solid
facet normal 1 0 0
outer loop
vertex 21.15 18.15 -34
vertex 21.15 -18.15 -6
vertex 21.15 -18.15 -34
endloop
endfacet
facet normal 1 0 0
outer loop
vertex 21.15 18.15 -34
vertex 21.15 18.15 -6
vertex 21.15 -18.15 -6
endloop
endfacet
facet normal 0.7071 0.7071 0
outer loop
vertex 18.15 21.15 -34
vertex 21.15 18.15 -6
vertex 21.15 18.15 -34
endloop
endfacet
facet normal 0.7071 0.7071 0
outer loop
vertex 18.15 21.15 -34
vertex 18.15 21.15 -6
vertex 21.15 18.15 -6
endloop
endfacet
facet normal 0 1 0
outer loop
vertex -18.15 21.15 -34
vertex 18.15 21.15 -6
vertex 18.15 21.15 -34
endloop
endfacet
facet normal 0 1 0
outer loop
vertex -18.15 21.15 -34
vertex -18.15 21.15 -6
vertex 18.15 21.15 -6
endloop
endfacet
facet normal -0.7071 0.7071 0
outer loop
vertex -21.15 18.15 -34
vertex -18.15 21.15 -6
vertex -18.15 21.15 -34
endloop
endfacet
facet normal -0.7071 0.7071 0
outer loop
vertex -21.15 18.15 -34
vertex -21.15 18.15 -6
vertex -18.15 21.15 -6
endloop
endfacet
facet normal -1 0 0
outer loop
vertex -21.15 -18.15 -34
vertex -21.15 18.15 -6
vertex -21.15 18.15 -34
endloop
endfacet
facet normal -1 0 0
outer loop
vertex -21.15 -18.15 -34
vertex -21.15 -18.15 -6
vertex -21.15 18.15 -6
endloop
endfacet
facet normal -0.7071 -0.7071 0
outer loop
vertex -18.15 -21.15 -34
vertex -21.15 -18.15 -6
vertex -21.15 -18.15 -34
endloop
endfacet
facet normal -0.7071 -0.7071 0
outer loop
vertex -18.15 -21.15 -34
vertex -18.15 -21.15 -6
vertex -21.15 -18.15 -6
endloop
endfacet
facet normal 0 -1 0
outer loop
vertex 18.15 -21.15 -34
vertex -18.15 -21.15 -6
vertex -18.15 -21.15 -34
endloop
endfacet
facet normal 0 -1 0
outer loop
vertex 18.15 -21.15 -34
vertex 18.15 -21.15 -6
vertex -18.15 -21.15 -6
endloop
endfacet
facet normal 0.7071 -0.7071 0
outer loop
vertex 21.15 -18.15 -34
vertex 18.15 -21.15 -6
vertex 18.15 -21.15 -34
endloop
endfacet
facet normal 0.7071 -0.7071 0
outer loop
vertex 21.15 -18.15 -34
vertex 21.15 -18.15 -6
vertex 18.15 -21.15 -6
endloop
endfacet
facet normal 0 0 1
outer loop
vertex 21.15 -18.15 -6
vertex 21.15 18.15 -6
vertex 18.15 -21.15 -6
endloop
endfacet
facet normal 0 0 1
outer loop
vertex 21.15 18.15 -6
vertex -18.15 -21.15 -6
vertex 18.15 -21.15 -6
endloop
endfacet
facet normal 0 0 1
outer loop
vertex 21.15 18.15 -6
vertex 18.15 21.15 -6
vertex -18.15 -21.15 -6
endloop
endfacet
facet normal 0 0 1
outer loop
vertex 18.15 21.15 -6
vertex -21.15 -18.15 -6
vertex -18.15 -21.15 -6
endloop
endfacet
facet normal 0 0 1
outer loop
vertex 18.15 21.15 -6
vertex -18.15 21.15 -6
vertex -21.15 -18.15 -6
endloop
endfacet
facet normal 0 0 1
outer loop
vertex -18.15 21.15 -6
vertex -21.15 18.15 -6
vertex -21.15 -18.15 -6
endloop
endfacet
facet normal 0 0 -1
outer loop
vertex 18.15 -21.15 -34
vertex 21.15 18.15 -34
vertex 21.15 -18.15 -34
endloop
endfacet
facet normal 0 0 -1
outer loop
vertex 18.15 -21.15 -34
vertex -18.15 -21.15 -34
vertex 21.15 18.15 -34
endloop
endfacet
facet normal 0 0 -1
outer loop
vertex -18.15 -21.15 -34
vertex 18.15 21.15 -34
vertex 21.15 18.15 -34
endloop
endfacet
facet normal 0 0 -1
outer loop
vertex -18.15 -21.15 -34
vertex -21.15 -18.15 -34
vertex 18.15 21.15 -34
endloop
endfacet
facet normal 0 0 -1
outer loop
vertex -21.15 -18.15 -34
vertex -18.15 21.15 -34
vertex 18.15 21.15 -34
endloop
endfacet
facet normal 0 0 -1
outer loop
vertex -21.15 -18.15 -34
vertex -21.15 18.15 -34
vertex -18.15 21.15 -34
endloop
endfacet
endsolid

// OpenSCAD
// file: C:/od/OneDrive/Documents/ChatGPT/oomlout_oobb_part_motor_gearbox_wave_drive_version_5/parts/oobb_part_motor_gearbox_wave_drive_version_5_12_to_1_reduction/nema17_reference.scad
// Visual reference matching the previous cycloidal project's 40 mm motor envelope.
// Face is Z=0; motor body extends towards -Z and shaft towards +Z.
// End caps, corner chamfers and connector are illustrative external details.
// This is purchased reference hardware, never a printable gearbox component.
module nema17_outline(width=42.3,depth=6,chamfer=3) {
    w=width/2;
    linear_extrude(depth) polygon([
        [-w+chamfer,-w],[w-chamfer,-w],[w,-w+chamfer],[w,w-chamfer],
        [w-chamfer,w],[-w+chamfer,w],[-w,w-chamfer],[-w,-w+chamfer]
    ]);
}
module nema17_front() {
    difference() {
        translate([0,0,-motor_cap_depth])
            nema17_outline(motor_body_width,motor_cap_depth,motor_corner_chamfer);
        for(x=[-motor_hole_pitch/2,motor_hole_pitch/2],y=[-motor_hole_pitch/2,motor_hole_pitch/2])
            translate([x,y,-motor_thread_depth]) cylinder(d=3,h=motor_thread_depth+0.01);
        translate([0,0,-motor_cap_depth-0.01]) cylinder(d=motor_shaft_diameter,h=motor_cap_depth+0.02);
    }
}
module nema17_stator() {
    translate([0,0,-motor_body_depth+motor_cap_depth])
        nema17_outline(motor_body_width,motor_body_depth-2*motor_cap_depth,motor_corner_chamfer);
}
module nema17_rear() {
    difference() {
        translate([0,0,-motor_body_depth])
            nema17_outline(motor_body_width,motor_cap_depth,motor_corner_chamfer);
        for(x=[-motor_hole_pitch/2,motor_hole_pitch/2],y=[-motor_hole_pitch/2,motor_hole_pitch/2])
            translate([x,y,-motor_body_depth-0.01]) cylinder(d=4.5,h=1.2);
    }
}
module nema17_pilot() {
    difference() {
        cylinder(d=motor_pilot_diameter,h=motor_pilot_height);
        translate([0,0,-0.01]) cylinder(d=motor_shaft_diameter,h=motor_pilot_height+0.02);
    }
}
module nema17_shaft() {
    linear_extrude(motor_shaft_length) intersection() {
        circle(d=motor_shaft_diameter);
        translate([-10,-10]) square([10+motor_shaft_diameter/2-motor_shaft_flat_depth,20]);
    }
}
module nema17_connector() {
    // Indicative connector envelope; actual cable exit depends on motor model.
    translate([-7,motor_body_width/2-1,-motor_body_depth+motor_cap_depth])
        cube([14,5,7]);
}
module nema17_reference() {
    color("Silver") { nema17_front(); nema17_rear(); nema17_pilot(); nema17_shaft(); }
    color([0.08,0.08,0.08]) nema17_stator();
    color([0.2,0.2,0.2]) nema17_connector();
}
// file: C:/od/OneDrive/Documents/ChatGPT/oomlout_oobb_part_motor_gearbox_wave_drive_version_5/parts/oobb_part_motor_gearbox_wave_drive_version_5_12_to_1_reduction/motor_reference_parameters.scad
// Purchased motor envelope. Recipe defines body, shaft and mounting dimensions.
motor_body_depth = 40.0;
motor_shaft_length = 24.0;
motor_hole_pitch = 31.0;
motor_thread_depth = 6.0;
motor_pilot_diameter = 22.0;
motor_pilot_height = 2.0;
motor_shaft_end_clearance = 0.5;
motor_thread_engagement = 5.2;
motor_shaft_diameter = 5.0;
motor_body_width = 42.3;
motor_cap_depth = 6.0;
motor_corner_chamfer = 3.0;
motor_shaft_flat_depth = 0.5;
motor_face_z = 0.0;
// main file
include <C:/od/OneDrive/Documents/ChatGPT/oomlout_oobb_part_motor_gearbox_wave_drive_version_5/parts/oobb_part_motor_gearbox_wave_drive_version_5_12_to_1_reduction/motor_reference_parameters.scad>
include <C:/od/OneDrive/Documents/ChatGPT/oomlout_oobb_part_motor_gearbox_wave_drive_version_5/parts/oobb_part_motor_gearbox_wave_drive_version_5_12_to_1_reduction/nema17_reference.scad>
$fn=120;
nema17_stator();
